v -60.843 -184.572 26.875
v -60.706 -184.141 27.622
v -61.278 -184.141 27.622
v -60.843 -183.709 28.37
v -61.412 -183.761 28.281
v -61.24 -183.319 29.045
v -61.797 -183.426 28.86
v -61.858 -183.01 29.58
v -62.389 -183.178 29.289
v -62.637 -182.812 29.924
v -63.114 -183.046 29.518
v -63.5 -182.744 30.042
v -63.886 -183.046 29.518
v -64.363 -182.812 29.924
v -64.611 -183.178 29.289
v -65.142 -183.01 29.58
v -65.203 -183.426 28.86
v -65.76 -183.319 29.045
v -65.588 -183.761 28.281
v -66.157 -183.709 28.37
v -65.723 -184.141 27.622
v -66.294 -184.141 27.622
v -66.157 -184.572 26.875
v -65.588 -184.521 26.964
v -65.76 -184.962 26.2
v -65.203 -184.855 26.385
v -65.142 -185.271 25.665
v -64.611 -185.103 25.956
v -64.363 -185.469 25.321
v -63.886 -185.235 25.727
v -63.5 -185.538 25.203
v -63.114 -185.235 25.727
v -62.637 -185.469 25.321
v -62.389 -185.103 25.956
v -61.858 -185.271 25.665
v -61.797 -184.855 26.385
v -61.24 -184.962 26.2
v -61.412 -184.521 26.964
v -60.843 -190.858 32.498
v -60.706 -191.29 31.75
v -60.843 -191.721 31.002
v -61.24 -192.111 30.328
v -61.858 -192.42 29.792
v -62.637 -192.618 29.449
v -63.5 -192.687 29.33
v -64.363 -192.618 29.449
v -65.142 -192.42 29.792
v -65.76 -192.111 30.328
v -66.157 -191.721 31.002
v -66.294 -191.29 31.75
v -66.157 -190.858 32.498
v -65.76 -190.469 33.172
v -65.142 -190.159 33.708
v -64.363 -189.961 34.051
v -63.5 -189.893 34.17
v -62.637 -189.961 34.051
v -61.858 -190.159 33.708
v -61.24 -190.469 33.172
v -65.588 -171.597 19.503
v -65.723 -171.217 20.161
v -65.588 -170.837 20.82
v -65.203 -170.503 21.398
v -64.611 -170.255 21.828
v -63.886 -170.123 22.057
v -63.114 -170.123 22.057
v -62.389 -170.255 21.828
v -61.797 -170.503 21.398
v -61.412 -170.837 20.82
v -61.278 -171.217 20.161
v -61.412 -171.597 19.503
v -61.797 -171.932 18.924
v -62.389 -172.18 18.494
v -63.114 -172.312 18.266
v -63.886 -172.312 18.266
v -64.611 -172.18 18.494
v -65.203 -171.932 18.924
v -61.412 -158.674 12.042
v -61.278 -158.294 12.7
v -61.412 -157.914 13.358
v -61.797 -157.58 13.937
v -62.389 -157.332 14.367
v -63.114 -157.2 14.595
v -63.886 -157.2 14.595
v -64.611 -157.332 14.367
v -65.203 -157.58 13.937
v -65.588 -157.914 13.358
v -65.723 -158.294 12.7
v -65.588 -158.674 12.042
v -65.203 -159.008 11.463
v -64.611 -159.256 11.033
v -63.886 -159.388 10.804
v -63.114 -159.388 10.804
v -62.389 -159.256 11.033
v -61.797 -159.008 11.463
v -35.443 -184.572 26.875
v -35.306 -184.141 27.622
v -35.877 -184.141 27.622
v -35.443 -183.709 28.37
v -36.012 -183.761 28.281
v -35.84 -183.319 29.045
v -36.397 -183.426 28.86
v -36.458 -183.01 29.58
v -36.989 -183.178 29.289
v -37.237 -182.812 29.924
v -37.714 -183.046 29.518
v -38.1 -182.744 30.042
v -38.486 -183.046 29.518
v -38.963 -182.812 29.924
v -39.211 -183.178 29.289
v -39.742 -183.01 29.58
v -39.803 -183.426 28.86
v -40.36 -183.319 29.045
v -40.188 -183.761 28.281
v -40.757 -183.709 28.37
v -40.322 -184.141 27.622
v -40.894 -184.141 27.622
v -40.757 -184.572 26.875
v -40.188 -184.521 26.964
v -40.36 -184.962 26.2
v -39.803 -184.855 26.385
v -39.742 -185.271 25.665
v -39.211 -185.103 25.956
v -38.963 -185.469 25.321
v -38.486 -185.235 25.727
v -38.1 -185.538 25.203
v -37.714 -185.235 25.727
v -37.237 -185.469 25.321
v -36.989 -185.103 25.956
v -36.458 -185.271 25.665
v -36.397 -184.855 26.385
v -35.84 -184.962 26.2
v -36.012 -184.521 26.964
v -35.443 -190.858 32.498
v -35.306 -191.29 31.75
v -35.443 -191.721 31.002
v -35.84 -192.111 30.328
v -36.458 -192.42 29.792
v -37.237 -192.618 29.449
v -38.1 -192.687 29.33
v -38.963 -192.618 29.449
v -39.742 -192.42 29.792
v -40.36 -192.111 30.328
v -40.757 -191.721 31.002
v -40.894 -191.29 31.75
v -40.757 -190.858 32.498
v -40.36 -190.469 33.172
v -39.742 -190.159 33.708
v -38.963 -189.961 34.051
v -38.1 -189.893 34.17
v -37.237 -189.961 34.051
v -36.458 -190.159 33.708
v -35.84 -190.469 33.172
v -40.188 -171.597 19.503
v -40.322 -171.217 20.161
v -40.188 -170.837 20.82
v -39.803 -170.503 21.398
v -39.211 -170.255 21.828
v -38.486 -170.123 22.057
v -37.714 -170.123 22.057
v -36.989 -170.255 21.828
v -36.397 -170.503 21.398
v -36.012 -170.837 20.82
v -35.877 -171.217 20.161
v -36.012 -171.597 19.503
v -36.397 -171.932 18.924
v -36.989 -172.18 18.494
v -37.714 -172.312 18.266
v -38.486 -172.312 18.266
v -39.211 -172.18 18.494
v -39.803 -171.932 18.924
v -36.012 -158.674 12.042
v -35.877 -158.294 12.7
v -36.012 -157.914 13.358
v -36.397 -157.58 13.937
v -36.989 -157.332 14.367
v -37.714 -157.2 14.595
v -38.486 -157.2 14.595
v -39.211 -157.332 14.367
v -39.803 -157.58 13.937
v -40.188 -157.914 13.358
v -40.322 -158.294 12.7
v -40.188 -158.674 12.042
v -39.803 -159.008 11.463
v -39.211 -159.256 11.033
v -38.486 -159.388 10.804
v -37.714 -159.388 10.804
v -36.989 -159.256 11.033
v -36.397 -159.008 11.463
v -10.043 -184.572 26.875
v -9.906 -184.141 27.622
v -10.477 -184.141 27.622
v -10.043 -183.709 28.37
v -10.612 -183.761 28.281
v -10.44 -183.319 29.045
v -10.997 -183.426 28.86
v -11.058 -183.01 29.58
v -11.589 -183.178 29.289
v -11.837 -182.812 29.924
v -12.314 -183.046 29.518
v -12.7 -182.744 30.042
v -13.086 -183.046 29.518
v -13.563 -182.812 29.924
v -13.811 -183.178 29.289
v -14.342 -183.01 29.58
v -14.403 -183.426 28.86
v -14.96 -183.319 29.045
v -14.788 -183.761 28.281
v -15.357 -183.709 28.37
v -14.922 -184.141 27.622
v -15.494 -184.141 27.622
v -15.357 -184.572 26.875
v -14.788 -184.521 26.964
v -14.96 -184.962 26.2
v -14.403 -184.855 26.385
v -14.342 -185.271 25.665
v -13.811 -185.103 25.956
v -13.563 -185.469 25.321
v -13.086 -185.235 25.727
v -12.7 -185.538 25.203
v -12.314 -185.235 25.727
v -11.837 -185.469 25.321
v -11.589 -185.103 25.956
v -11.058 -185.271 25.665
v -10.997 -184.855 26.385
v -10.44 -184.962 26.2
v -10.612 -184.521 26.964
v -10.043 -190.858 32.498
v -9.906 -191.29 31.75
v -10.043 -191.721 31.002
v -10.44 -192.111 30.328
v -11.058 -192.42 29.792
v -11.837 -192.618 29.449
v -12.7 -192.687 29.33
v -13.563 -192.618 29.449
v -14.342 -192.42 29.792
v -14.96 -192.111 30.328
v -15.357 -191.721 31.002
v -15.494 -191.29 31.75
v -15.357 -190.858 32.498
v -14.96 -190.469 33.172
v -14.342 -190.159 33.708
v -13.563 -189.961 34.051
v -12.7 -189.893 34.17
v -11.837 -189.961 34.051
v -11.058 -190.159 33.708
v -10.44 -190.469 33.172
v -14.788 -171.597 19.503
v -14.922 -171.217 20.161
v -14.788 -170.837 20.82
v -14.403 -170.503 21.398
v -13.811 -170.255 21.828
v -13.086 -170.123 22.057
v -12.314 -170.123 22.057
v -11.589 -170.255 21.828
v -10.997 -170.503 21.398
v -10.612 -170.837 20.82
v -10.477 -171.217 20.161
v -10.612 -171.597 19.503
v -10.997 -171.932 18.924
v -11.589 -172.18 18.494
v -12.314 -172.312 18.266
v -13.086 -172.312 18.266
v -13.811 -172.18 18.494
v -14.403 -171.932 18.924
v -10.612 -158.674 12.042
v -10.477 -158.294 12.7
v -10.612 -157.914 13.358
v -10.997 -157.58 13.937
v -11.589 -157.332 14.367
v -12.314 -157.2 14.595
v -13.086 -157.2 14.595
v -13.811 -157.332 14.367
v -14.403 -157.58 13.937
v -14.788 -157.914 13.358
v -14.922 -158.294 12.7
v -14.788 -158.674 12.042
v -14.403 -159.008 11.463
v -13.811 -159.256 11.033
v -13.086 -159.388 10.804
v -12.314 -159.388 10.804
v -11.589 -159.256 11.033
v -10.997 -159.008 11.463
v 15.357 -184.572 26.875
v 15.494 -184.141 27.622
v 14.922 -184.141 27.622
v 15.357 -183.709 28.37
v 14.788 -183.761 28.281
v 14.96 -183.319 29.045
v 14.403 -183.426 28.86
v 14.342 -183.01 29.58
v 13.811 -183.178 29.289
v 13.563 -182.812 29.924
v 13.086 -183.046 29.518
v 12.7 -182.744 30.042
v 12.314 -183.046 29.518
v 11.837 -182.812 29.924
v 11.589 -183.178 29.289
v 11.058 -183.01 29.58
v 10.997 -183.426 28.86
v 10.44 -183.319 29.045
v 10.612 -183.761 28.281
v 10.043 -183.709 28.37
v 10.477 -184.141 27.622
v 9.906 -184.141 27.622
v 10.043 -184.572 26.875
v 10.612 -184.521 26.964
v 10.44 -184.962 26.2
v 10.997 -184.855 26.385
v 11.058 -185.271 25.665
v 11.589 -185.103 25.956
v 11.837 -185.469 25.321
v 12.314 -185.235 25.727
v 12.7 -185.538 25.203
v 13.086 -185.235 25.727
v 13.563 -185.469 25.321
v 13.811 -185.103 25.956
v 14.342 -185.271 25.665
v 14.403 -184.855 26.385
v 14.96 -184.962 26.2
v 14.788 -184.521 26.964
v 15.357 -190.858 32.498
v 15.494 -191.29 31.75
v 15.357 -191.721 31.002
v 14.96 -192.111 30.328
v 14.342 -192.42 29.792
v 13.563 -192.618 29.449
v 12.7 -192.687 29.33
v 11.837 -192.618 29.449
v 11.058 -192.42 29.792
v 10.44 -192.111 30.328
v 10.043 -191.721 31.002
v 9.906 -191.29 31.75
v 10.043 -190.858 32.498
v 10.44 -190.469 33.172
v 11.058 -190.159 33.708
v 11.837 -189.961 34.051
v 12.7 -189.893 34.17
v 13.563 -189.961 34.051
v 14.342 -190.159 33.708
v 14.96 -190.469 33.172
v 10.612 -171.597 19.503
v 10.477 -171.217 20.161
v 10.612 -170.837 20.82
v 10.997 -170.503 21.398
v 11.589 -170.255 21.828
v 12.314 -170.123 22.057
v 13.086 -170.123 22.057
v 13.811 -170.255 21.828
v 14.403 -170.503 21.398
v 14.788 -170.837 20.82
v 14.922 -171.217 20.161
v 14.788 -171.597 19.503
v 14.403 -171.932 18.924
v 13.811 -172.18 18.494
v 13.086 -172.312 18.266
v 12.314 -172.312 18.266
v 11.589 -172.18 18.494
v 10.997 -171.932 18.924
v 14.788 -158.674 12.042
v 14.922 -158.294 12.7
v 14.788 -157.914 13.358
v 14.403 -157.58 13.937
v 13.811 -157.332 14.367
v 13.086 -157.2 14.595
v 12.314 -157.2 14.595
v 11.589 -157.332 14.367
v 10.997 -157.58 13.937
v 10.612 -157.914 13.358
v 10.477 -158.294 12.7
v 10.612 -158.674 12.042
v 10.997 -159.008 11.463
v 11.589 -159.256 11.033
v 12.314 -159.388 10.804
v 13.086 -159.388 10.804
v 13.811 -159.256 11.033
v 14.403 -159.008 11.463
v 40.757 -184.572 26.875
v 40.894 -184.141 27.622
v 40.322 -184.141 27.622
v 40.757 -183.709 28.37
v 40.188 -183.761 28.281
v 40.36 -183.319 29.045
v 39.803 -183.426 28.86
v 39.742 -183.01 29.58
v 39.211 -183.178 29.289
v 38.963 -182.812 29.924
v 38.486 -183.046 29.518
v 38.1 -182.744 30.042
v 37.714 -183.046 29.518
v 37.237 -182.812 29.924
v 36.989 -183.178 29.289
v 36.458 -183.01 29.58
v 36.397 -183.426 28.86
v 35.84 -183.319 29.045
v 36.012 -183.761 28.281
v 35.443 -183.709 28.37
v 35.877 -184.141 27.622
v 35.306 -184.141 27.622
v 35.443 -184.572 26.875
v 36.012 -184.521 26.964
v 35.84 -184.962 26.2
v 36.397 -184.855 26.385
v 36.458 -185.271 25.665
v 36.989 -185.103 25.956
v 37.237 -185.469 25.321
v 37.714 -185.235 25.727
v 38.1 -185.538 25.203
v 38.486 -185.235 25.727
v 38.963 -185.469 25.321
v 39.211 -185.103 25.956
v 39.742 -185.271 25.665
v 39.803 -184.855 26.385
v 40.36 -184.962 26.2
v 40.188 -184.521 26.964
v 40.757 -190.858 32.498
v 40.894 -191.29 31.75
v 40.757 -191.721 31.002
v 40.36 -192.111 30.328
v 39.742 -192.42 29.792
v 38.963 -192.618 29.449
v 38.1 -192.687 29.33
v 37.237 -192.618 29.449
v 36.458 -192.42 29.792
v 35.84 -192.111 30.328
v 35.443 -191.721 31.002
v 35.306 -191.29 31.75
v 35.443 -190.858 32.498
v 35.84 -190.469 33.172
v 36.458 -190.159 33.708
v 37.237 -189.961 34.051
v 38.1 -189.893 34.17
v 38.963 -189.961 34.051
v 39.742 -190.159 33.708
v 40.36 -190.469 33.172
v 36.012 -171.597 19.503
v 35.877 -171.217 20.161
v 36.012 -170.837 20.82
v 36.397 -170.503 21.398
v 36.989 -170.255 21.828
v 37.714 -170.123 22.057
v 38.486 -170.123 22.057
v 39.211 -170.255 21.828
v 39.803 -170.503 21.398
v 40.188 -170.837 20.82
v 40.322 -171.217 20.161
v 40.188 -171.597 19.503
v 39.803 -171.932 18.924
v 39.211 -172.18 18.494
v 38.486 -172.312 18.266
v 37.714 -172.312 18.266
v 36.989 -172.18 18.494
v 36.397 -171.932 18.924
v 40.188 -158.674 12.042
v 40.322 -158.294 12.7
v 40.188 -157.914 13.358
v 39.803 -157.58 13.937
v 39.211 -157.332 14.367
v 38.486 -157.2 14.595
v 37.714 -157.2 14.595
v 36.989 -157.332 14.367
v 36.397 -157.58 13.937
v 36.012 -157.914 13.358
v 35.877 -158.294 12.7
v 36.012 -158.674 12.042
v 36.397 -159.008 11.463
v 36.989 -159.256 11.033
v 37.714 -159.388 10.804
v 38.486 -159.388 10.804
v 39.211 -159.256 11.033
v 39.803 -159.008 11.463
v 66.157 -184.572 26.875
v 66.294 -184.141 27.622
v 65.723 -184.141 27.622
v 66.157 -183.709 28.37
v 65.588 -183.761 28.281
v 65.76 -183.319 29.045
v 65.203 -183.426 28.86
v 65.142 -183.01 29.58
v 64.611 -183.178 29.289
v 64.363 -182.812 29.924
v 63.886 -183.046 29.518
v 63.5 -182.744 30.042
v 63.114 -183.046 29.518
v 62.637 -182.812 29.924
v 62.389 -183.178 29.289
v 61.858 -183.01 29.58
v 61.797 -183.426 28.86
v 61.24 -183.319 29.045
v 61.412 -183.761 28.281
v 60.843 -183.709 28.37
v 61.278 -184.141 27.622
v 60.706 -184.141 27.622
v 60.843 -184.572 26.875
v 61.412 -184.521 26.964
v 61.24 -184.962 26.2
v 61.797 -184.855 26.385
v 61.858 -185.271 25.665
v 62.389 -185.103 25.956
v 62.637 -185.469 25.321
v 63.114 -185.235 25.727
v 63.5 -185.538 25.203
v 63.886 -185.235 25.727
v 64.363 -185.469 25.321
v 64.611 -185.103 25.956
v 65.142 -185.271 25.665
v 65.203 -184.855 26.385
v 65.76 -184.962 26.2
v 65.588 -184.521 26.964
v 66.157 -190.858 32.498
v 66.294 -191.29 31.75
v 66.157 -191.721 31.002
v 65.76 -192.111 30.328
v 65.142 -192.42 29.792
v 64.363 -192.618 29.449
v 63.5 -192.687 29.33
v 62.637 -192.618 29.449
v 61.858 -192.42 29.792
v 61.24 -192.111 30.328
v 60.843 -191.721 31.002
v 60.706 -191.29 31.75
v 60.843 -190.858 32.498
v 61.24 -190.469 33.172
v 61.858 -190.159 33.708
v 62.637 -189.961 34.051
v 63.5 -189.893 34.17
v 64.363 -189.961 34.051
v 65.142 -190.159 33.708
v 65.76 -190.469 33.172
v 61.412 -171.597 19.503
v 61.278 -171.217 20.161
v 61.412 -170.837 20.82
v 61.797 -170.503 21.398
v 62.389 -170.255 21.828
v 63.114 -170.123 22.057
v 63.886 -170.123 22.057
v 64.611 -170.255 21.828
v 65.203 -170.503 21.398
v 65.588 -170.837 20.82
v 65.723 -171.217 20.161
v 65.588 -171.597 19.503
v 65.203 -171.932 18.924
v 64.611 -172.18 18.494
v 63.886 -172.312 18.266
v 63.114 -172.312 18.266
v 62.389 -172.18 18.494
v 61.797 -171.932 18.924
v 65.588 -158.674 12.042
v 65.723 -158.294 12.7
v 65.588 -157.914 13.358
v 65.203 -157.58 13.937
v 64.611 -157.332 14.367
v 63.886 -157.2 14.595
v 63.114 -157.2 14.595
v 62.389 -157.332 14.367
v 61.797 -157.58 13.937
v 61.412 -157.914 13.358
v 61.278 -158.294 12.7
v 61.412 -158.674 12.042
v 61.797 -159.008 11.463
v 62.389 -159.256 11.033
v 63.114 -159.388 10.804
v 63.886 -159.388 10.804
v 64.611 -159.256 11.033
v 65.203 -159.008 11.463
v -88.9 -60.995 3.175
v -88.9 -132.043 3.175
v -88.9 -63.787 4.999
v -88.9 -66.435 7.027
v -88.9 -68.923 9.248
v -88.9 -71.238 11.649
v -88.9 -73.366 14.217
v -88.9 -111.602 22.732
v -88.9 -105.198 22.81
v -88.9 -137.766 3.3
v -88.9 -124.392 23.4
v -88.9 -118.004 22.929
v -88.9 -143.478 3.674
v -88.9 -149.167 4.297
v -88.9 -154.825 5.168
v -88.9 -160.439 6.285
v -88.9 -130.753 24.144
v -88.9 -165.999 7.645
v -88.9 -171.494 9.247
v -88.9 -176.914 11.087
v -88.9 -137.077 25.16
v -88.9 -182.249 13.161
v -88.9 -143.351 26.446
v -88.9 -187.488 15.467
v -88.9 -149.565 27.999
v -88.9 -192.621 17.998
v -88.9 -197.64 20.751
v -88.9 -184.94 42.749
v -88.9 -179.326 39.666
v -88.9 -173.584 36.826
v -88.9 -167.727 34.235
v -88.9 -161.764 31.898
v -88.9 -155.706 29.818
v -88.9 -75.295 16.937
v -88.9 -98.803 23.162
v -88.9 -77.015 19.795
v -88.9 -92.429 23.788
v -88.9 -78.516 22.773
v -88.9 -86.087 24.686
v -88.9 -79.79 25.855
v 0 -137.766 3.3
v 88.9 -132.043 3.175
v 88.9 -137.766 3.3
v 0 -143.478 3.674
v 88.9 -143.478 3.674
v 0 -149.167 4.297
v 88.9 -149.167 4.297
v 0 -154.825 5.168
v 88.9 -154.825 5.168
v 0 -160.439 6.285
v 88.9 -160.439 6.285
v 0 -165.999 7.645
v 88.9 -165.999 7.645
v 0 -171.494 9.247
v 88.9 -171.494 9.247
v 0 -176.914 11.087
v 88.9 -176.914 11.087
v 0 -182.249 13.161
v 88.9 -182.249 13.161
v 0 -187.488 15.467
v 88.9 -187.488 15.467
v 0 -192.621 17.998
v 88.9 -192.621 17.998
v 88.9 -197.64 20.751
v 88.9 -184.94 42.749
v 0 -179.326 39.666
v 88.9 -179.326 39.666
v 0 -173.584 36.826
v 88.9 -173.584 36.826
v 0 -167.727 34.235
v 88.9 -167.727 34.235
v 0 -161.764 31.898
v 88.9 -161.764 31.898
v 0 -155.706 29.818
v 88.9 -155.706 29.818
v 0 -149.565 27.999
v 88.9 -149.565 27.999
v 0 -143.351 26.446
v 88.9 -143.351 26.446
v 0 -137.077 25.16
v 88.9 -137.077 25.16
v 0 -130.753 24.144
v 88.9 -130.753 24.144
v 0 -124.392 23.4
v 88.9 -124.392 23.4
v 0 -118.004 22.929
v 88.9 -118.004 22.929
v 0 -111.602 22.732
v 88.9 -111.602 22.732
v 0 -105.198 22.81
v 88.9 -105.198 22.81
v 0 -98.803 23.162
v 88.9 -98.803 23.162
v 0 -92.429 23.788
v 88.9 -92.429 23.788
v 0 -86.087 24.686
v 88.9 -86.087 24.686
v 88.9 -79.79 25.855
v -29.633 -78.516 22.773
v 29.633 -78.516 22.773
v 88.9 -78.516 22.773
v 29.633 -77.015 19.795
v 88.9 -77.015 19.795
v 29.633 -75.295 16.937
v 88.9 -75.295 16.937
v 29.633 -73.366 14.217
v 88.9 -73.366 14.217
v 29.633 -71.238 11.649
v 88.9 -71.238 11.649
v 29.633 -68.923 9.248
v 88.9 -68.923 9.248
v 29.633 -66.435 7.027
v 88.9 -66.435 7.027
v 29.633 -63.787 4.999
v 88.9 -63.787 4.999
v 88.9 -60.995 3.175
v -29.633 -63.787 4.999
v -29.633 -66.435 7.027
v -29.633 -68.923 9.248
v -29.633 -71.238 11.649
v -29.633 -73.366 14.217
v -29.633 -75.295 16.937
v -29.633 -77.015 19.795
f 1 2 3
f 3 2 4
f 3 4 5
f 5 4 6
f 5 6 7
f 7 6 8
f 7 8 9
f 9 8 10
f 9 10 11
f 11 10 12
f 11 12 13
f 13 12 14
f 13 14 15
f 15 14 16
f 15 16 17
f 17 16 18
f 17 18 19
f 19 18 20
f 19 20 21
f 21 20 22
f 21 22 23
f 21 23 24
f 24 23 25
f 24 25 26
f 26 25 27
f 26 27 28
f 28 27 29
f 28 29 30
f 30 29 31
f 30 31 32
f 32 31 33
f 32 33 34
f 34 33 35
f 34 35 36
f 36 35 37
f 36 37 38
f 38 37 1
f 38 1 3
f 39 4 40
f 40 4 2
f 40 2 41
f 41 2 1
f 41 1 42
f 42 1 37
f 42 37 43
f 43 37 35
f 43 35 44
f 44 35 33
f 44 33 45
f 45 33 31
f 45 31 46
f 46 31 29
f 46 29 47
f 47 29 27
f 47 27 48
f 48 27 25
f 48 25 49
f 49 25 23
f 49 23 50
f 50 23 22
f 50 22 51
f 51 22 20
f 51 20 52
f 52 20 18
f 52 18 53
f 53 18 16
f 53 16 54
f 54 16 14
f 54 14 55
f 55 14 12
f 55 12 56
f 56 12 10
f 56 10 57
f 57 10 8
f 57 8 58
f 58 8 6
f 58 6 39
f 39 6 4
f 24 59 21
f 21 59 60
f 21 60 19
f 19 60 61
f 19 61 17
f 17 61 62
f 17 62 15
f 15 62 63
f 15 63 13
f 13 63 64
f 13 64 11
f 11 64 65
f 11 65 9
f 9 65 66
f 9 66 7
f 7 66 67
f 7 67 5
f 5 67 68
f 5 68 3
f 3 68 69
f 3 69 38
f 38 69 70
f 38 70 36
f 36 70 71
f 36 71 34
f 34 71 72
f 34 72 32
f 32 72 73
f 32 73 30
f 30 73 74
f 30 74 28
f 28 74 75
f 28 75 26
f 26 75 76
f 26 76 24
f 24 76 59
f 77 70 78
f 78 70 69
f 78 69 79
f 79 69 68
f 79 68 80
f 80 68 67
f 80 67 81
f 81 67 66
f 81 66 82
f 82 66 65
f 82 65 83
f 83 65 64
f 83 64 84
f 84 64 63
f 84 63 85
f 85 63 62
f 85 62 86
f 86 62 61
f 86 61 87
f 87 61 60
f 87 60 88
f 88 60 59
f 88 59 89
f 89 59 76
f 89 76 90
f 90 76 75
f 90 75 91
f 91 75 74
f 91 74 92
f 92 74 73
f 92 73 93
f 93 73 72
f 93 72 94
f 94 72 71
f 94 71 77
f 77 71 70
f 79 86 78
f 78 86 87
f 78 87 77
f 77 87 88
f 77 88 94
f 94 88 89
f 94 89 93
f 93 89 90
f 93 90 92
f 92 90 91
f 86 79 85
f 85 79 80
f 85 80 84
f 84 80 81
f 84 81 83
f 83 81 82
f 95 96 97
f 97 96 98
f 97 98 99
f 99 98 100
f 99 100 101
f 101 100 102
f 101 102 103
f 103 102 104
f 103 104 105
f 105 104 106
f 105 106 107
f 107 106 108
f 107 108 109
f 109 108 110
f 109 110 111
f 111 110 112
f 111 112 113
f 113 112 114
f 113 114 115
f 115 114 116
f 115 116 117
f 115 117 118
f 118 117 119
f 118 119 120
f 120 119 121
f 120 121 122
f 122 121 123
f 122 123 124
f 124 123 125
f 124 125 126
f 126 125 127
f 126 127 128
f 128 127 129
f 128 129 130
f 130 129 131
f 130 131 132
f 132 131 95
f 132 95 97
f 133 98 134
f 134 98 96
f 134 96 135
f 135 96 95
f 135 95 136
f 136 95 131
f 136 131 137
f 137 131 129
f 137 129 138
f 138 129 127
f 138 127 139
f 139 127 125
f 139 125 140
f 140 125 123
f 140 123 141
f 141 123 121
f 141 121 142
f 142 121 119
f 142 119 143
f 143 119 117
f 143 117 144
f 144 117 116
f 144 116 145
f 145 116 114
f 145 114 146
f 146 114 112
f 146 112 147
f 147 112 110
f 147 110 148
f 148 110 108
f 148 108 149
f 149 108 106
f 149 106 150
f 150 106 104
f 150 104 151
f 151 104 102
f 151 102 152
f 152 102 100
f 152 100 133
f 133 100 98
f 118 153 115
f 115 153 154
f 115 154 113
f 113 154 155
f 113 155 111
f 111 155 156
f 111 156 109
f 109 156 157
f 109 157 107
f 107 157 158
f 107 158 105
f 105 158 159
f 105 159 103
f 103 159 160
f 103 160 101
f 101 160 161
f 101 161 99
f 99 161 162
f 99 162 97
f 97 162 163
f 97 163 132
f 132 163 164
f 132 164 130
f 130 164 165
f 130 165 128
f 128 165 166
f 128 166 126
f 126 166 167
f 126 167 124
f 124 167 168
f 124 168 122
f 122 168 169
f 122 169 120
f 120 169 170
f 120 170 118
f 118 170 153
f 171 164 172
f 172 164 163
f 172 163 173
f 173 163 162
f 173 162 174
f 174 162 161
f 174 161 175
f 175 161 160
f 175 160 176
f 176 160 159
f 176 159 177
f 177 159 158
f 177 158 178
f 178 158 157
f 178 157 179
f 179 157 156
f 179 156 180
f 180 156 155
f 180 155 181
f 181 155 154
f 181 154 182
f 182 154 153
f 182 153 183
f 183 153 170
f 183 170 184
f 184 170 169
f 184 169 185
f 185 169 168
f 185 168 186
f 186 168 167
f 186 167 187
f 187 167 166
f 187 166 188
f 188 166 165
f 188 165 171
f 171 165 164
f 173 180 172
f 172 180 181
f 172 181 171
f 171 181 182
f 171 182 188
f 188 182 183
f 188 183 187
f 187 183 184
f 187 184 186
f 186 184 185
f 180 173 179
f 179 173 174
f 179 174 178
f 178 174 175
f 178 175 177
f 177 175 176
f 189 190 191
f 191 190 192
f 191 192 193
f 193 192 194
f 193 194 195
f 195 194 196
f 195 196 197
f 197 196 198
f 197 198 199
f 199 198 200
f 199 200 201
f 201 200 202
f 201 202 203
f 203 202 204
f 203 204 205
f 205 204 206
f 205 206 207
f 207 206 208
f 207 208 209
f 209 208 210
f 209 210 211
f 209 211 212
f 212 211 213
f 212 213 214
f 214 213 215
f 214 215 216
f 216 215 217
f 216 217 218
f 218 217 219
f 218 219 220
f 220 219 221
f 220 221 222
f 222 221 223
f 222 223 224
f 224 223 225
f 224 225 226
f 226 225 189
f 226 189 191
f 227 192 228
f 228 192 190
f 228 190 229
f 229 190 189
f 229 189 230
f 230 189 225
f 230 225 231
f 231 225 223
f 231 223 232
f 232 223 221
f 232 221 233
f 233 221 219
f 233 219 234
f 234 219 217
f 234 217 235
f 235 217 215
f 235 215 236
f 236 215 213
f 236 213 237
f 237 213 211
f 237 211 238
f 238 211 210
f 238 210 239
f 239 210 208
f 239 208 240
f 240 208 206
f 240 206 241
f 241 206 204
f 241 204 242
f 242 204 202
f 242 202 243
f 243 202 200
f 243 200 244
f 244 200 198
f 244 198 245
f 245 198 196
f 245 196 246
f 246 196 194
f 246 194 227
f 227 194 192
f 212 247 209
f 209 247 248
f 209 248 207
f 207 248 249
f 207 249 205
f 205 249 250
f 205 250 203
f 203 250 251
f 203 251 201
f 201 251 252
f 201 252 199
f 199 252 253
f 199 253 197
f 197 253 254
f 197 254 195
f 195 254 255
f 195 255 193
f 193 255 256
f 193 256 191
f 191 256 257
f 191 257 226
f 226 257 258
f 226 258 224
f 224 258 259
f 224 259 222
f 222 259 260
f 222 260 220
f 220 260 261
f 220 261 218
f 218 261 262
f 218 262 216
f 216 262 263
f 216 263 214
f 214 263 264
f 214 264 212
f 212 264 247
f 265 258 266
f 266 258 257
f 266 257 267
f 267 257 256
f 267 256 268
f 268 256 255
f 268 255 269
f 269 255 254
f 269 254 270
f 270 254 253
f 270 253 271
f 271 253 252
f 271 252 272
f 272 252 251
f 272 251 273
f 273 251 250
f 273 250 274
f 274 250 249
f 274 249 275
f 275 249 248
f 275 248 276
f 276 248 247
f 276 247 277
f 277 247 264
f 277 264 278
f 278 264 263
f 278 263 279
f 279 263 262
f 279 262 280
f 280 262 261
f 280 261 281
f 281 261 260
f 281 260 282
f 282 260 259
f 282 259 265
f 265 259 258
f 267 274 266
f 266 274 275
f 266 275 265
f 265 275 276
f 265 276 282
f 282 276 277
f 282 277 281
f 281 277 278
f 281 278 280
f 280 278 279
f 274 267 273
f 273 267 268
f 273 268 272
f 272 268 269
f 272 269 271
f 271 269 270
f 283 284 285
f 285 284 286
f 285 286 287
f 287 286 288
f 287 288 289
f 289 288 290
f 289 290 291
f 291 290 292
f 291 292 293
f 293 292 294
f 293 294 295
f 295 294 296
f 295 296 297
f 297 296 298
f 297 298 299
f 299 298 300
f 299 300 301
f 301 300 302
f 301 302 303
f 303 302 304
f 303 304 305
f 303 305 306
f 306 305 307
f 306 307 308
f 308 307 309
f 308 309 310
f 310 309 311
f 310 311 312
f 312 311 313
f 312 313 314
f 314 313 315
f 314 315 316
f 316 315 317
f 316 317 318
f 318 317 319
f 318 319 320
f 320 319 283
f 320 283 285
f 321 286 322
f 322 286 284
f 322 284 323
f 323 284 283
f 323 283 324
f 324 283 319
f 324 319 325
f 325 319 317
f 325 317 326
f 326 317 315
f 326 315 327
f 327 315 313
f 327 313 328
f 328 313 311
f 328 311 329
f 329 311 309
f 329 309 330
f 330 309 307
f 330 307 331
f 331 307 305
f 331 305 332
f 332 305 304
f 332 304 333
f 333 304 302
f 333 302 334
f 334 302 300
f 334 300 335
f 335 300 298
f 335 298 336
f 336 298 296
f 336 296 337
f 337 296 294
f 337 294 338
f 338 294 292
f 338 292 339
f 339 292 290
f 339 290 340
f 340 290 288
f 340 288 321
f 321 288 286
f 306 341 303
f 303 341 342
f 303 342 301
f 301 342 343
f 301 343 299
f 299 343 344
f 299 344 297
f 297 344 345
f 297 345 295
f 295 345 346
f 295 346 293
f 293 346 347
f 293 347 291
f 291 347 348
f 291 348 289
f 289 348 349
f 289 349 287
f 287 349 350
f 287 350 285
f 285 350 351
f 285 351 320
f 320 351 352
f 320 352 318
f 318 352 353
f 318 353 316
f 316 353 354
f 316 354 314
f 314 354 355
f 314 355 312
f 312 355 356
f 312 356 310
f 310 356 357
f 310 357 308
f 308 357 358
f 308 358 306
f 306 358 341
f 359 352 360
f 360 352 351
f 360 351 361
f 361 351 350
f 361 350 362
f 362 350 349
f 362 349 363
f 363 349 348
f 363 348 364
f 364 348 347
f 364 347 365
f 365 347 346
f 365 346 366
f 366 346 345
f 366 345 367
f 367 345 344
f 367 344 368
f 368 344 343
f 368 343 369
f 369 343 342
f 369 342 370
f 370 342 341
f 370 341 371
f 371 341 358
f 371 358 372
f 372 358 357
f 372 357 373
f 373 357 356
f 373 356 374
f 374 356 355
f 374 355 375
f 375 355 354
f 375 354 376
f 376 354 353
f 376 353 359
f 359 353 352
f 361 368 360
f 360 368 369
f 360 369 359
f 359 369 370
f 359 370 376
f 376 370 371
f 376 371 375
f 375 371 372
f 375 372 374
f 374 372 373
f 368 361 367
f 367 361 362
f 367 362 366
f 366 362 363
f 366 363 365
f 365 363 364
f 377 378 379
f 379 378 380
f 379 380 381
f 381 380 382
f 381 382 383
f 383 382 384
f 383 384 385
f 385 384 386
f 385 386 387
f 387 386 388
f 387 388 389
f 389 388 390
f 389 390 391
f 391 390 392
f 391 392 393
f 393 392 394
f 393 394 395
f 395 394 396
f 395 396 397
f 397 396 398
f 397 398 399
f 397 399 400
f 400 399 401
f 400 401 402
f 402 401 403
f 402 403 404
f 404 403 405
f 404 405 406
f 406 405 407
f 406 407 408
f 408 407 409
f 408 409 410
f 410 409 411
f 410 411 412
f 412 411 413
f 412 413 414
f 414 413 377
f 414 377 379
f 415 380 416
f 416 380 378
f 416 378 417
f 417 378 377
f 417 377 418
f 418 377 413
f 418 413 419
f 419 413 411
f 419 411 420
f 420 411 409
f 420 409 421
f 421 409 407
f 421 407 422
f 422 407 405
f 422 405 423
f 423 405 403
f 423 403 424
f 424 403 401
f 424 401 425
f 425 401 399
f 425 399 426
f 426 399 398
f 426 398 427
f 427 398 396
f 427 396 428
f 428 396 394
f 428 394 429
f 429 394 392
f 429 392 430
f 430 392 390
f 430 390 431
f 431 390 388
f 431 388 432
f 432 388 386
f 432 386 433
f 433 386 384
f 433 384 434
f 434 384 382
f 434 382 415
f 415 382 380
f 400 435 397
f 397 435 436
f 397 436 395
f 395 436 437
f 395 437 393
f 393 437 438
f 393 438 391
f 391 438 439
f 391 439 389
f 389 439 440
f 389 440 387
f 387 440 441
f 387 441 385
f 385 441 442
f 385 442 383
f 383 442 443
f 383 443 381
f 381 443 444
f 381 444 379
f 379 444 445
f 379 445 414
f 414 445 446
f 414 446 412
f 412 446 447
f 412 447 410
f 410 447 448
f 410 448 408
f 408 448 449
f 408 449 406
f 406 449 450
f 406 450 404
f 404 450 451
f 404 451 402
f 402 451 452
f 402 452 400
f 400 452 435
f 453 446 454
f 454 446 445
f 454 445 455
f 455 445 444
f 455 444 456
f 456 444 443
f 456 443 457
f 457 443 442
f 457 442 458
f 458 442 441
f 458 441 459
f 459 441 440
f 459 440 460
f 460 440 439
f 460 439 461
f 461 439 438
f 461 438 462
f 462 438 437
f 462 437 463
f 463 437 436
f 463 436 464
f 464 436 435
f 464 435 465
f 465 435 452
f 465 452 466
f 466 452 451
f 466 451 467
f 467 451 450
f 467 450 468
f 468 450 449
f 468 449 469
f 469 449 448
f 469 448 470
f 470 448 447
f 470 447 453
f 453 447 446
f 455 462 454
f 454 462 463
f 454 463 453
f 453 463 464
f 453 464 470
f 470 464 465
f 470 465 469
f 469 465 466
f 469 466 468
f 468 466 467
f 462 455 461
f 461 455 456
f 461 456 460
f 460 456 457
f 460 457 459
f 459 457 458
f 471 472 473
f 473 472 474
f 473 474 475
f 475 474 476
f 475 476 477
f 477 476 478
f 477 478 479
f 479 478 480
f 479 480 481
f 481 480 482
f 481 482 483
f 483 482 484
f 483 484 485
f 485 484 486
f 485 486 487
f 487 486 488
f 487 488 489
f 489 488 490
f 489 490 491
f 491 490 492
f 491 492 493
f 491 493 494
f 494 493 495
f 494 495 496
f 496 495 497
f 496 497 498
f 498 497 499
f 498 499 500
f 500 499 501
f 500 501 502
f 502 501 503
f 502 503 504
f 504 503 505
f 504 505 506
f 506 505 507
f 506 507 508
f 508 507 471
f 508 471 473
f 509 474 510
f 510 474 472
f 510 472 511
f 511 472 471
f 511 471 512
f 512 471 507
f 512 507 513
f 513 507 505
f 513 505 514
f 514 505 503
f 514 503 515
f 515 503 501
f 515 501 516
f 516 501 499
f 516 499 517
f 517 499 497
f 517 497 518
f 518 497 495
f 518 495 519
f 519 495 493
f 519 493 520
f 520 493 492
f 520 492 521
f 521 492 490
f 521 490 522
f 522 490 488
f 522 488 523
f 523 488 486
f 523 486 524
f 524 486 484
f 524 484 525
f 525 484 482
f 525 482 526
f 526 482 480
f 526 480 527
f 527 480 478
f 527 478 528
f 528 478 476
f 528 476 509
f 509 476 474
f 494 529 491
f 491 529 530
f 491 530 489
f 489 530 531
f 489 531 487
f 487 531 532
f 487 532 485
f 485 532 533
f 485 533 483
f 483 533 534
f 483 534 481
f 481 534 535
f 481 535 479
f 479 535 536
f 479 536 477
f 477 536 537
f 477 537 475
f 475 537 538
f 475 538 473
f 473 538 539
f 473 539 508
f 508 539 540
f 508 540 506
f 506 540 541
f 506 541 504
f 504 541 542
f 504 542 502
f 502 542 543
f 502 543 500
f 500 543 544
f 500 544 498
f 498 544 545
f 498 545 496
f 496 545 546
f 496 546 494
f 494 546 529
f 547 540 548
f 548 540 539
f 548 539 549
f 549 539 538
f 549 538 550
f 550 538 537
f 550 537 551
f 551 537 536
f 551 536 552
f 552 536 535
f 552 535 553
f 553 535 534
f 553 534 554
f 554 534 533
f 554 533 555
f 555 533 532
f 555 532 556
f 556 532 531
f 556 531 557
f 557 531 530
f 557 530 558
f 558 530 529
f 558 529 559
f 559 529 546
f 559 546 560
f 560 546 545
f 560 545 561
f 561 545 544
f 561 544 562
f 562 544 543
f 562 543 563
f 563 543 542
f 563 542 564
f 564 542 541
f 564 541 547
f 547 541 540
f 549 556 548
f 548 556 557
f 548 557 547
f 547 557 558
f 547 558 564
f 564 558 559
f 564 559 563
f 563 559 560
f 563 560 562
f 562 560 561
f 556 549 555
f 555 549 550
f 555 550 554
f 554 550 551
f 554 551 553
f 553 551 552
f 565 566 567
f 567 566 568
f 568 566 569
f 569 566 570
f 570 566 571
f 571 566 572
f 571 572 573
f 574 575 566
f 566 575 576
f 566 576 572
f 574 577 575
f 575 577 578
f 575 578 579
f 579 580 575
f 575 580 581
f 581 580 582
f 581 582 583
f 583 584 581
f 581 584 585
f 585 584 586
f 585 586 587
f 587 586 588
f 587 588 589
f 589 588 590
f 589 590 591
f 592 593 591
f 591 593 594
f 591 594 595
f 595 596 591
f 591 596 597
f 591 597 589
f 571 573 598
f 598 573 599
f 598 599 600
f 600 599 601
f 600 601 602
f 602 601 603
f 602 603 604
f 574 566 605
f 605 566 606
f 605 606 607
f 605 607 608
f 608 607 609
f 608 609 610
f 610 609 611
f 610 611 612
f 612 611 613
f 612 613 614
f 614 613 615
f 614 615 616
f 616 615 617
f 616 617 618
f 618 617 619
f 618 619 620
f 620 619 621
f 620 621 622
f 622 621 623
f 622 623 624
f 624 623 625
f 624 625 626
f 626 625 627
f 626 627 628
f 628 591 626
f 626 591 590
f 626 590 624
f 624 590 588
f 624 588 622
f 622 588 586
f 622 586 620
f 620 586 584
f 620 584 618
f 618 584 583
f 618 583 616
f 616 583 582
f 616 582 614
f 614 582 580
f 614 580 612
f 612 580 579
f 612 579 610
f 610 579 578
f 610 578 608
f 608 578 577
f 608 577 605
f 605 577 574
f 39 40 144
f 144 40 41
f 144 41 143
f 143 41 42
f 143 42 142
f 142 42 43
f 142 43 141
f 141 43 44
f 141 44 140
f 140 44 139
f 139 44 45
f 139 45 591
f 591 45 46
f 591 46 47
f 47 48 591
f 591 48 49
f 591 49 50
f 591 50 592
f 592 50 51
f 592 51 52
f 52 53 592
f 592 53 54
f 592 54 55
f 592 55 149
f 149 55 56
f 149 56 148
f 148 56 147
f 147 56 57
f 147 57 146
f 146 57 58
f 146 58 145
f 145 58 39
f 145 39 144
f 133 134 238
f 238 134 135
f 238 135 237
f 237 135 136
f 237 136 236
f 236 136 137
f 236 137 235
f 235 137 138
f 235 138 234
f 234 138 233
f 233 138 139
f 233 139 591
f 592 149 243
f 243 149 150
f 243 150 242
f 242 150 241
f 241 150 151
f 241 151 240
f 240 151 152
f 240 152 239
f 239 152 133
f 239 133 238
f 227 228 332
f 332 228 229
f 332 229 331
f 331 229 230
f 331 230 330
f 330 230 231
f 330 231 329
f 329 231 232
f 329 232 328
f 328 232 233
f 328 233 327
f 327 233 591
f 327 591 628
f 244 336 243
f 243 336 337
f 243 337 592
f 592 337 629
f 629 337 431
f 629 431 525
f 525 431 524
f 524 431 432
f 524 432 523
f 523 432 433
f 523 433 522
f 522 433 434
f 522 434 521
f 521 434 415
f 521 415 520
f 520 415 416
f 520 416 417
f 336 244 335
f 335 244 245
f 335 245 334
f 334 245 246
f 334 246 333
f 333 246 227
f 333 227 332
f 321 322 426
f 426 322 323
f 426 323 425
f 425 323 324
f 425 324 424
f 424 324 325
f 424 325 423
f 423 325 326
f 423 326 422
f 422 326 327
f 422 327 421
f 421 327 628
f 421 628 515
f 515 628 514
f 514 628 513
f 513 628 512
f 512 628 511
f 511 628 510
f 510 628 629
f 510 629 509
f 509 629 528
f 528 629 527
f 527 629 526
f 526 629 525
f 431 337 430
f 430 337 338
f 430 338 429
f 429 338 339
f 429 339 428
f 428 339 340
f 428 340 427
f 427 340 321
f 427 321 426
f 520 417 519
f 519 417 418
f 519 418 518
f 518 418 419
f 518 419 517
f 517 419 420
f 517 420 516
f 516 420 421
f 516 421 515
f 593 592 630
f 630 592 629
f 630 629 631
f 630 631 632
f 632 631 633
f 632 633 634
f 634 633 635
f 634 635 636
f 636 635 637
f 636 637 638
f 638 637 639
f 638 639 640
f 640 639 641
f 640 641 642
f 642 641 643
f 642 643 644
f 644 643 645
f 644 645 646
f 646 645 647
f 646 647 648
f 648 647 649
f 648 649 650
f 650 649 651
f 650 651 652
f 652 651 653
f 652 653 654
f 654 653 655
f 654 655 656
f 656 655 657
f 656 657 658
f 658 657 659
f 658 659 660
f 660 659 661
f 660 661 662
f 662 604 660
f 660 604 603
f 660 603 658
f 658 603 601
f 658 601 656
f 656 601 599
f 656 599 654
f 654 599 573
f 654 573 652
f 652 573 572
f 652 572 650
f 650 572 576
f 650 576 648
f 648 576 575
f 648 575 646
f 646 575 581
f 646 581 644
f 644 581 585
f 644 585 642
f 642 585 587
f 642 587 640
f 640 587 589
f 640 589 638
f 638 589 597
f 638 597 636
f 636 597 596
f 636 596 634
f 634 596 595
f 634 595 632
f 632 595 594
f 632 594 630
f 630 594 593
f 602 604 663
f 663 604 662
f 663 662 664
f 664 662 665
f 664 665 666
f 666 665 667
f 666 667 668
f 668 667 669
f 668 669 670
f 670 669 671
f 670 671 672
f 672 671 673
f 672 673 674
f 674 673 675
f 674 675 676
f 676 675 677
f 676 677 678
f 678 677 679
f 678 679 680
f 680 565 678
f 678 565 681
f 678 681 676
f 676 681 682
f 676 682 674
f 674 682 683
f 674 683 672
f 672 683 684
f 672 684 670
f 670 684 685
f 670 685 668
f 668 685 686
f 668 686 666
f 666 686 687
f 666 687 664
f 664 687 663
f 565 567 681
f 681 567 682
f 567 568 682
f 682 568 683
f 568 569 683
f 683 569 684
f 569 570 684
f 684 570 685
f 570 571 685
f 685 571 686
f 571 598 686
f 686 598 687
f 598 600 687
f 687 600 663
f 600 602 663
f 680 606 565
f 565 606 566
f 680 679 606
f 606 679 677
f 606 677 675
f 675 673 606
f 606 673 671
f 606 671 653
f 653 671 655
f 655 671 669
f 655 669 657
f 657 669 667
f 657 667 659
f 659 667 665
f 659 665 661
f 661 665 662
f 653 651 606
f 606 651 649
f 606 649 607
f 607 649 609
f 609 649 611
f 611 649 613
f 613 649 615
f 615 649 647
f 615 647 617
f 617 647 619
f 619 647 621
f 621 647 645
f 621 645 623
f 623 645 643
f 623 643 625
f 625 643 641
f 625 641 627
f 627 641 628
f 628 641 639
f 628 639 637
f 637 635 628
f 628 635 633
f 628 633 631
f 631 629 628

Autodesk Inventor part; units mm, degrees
ref_plane "YZ Plane" through (0, 0, 0) normal (1, 0, 0) x (0, 1, 0)
ref_plane "XZ Plane" through (0, 0, 0) normal (0, 1, 0) x (-1, 0, 0)
ref_plane "XY Plane" through (0, 0, 0) normal (0, 0, 1) x (1, 0, 0)
sketch "Sketch1" plane through (0, 0, 0) normal (1, 0, 0) x (0, 1, 0)
  line L0 (-219.6367, 33.4515) -> (-197.6397, 20.7515)
  line L1 (-197.6397, 20.7515) -> (-184.9397, 42.7485)
  line L2 (-184.9397, 42.7485) -> (-206.9367, 55.4485)
  line L3 (-206.9367, 55.4485) -> (-219.6367, 33.4515)
  line L4 (-219.6367, 33.4515) -> (-184.9397, 42.7485) construction
  line L5 (-197.6397, 20.7515) -> (-206.9367, 55.4485) construction
  circle A0 centre (-38.1, 41.275) radius 38.1
  line L6 (0, 0) -> (-228.6, 0)
  line L7 (-228.6, 0) -> (-228.6, -25.4)
  line L8 (-228.6, -25.4) -> (0, -25.4)
  line L9 (0, -25.4) -> (0, 0)
  line L10 (0, 0) -> (-228.6, -25.4) construction
  line L11 (-228.6, 0) -> (0, -25.4) construction
  line L12 (-38.1, 3.175) -> (-132.0434, 3.175)
  arc A1 (-197.6397, 20.7515) -> (-132.0434, 3.175) centre (-132.0434, 134.3676) ccw
  circle A2 centre (-38.1, 41.275) radius 44.45
  arc A3 (-184.9397, 42.7485) -> (-79.7897, 25.8552) centre (-110.2136, 172.1778) ccw
  circle A4 centre (-101.6, 41.275) radius 7.3323
  line L13 (-107.95, 44.9412) -> (-101.6, 48.6073)
  line L14 (-101.6, 48.6073) -> (-95.25, 44.9412)
  line L15 (-95.25, 44.9412) -> (-95.25, 37.6088)
  line L16 (-95.25, 37.6088) -> (-101.6, 33.9427)
  line L17 (-101.6, 33.9427) -> (-107.95, 37.6088)
  line L18 (-107.95, 37.6088) -> (-107.95, 44.9412)
  point P0 (-202.2882, 38.1)
  point P1 (-114.3, -12.7)
  point P2 (-60.9953, 3.175)
  dimension "d0" = 76.2
  dimension "d1" = 25.4
  dimension "d2" = 60
  dimension "d3" = 41.275
  dimension "d4" = 38.1
  dimension "d5" = 146.847
  dimension "d6" = 20.7515
  dimension "d7" = 228.6
  dimension "d8" = 88.9
  dimension "d23" = 12.7
  dimension "d24" = 63.5
extrude "Extrusion1" add sketch "Sketch1" along normal mid plane 177.8 contours L1 A3 A2 L12 A1
sketch "Sketch2" plane through (-88.9, -197.6397, 20.7515) normal (0, -0.866, 0.5) x (1, 0, 0)
  line L0 (0, 0) -> (177.8, 0) projected
  line L1 (177.8, 25.4) -> (177.8, 0) projected
  point P0 (88.9, 80.8485)
  point P1 (152.4, 12.7)
  dimension "d11" = 12.7
  dimension "d12" = 25.4
hole "Hole1" at (63.5, -191.2897, 31.75) direction (0, 0.866, -0.5) diameter 4.445 depth 38.1 counterbore diameter 5.588 counterbore depth 8.255
pattern_linear "Rectangular Pattern1" count 6 spacing 25.4 along (-1, 0, 0) of "Hole1"
properties part number "FlyWheel Alligner"
